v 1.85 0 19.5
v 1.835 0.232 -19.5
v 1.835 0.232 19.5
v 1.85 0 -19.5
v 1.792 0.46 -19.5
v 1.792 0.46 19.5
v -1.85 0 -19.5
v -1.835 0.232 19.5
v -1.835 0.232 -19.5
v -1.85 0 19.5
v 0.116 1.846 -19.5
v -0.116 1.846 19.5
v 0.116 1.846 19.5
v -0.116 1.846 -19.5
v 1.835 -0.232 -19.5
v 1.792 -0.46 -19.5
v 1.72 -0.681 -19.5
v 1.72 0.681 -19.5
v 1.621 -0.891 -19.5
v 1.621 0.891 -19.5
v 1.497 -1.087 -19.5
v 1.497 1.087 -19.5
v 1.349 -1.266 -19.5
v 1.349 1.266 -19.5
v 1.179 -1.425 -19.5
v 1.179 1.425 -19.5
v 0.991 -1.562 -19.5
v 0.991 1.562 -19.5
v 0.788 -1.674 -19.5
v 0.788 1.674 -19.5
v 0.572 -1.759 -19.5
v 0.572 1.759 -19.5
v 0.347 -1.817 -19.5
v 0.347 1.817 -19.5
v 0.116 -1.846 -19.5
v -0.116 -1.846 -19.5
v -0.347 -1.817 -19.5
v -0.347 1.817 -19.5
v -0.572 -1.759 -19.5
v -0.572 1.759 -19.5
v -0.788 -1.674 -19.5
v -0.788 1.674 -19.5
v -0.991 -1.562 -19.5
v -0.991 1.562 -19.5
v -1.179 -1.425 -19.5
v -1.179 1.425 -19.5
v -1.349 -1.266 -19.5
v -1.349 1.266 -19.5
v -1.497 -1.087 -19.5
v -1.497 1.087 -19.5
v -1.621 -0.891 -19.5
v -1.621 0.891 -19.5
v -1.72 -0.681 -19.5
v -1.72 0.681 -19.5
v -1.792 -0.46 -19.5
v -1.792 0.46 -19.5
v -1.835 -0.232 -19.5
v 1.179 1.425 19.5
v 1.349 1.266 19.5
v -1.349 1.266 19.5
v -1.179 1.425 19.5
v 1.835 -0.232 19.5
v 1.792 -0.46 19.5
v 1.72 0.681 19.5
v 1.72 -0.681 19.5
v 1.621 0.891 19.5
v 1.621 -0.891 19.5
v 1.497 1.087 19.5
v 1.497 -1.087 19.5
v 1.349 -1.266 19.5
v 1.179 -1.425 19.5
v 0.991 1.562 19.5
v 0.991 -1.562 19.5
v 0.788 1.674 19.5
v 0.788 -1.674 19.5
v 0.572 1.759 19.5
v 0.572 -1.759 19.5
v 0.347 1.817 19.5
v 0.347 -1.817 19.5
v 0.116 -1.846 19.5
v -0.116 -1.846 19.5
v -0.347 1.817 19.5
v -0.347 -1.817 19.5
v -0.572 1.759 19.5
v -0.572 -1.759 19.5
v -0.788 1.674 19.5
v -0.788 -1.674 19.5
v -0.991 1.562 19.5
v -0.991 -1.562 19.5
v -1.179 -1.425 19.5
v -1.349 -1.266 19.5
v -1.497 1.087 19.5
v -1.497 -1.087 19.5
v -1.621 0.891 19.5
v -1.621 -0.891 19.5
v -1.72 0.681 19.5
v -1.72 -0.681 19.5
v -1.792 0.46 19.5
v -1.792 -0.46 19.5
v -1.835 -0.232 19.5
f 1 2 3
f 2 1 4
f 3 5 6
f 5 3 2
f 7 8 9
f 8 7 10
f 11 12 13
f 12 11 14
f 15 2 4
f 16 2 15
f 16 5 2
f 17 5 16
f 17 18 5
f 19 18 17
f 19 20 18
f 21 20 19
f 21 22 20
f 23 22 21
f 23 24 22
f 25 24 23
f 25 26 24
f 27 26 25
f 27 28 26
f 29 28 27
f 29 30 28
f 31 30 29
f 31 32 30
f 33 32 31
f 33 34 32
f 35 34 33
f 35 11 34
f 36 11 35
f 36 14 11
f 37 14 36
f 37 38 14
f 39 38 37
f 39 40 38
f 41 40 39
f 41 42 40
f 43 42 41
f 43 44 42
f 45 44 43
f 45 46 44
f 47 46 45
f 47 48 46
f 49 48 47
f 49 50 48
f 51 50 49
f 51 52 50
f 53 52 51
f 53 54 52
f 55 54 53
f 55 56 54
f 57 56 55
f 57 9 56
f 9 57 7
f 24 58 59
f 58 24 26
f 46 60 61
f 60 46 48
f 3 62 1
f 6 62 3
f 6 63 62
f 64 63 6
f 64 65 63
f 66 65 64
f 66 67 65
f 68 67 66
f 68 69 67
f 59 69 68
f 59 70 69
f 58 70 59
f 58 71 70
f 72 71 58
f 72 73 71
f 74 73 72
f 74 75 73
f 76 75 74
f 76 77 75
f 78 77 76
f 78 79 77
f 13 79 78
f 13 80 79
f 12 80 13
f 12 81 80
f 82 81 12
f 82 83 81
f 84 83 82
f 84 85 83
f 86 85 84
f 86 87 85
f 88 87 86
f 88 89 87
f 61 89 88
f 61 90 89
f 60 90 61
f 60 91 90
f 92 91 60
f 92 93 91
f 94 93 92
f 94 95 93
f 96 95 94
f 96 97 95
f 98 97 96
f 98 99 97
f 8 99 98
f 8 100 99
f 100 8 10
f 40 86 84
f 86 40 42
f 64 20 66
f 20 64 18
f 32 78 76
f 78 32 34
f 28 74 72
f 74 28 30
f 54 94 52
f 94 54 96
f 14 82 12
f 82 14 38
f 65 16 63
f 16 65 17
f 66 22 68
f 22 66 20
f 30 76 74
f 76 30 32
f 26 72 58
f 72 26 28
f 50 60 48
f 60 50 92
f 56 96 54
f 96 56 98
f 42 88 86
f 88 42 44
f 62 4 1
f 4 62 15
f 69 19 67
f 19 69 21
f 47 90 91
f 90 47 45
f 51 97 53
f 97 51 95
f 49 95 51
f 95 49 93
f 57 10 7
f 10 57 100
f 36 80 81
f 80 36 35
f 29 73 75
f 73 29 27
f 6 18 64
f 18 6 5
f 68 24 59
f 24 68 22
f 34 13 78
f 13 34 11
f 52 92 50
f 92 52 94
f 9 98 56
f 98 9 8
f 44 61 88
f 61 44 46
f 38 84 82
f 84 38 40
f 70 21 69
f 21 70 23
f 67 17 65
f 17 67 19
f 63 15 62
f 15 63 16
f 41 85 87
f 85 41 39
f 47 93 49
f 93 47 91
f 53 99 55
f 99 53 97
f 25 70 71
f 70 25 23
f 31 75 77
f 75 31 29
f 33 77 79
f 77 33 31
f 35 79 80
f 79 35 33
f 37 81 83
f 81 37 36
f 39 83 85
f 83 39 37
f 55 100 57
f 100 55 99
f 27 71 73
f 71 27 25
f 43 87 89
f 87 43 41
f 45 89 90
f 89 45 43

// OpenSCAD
$fn = 50;


difference() {
	union() {
		translate(v = [0, 0, -19.5000000000]) {
			cylinder(h = 39, r = 1.8500000000);
		}
	}
	union() {
		translate(v = [0, 0, -100.0000000000]) {
			cylinder(h = 200, r = 0);
		}
	}
}
